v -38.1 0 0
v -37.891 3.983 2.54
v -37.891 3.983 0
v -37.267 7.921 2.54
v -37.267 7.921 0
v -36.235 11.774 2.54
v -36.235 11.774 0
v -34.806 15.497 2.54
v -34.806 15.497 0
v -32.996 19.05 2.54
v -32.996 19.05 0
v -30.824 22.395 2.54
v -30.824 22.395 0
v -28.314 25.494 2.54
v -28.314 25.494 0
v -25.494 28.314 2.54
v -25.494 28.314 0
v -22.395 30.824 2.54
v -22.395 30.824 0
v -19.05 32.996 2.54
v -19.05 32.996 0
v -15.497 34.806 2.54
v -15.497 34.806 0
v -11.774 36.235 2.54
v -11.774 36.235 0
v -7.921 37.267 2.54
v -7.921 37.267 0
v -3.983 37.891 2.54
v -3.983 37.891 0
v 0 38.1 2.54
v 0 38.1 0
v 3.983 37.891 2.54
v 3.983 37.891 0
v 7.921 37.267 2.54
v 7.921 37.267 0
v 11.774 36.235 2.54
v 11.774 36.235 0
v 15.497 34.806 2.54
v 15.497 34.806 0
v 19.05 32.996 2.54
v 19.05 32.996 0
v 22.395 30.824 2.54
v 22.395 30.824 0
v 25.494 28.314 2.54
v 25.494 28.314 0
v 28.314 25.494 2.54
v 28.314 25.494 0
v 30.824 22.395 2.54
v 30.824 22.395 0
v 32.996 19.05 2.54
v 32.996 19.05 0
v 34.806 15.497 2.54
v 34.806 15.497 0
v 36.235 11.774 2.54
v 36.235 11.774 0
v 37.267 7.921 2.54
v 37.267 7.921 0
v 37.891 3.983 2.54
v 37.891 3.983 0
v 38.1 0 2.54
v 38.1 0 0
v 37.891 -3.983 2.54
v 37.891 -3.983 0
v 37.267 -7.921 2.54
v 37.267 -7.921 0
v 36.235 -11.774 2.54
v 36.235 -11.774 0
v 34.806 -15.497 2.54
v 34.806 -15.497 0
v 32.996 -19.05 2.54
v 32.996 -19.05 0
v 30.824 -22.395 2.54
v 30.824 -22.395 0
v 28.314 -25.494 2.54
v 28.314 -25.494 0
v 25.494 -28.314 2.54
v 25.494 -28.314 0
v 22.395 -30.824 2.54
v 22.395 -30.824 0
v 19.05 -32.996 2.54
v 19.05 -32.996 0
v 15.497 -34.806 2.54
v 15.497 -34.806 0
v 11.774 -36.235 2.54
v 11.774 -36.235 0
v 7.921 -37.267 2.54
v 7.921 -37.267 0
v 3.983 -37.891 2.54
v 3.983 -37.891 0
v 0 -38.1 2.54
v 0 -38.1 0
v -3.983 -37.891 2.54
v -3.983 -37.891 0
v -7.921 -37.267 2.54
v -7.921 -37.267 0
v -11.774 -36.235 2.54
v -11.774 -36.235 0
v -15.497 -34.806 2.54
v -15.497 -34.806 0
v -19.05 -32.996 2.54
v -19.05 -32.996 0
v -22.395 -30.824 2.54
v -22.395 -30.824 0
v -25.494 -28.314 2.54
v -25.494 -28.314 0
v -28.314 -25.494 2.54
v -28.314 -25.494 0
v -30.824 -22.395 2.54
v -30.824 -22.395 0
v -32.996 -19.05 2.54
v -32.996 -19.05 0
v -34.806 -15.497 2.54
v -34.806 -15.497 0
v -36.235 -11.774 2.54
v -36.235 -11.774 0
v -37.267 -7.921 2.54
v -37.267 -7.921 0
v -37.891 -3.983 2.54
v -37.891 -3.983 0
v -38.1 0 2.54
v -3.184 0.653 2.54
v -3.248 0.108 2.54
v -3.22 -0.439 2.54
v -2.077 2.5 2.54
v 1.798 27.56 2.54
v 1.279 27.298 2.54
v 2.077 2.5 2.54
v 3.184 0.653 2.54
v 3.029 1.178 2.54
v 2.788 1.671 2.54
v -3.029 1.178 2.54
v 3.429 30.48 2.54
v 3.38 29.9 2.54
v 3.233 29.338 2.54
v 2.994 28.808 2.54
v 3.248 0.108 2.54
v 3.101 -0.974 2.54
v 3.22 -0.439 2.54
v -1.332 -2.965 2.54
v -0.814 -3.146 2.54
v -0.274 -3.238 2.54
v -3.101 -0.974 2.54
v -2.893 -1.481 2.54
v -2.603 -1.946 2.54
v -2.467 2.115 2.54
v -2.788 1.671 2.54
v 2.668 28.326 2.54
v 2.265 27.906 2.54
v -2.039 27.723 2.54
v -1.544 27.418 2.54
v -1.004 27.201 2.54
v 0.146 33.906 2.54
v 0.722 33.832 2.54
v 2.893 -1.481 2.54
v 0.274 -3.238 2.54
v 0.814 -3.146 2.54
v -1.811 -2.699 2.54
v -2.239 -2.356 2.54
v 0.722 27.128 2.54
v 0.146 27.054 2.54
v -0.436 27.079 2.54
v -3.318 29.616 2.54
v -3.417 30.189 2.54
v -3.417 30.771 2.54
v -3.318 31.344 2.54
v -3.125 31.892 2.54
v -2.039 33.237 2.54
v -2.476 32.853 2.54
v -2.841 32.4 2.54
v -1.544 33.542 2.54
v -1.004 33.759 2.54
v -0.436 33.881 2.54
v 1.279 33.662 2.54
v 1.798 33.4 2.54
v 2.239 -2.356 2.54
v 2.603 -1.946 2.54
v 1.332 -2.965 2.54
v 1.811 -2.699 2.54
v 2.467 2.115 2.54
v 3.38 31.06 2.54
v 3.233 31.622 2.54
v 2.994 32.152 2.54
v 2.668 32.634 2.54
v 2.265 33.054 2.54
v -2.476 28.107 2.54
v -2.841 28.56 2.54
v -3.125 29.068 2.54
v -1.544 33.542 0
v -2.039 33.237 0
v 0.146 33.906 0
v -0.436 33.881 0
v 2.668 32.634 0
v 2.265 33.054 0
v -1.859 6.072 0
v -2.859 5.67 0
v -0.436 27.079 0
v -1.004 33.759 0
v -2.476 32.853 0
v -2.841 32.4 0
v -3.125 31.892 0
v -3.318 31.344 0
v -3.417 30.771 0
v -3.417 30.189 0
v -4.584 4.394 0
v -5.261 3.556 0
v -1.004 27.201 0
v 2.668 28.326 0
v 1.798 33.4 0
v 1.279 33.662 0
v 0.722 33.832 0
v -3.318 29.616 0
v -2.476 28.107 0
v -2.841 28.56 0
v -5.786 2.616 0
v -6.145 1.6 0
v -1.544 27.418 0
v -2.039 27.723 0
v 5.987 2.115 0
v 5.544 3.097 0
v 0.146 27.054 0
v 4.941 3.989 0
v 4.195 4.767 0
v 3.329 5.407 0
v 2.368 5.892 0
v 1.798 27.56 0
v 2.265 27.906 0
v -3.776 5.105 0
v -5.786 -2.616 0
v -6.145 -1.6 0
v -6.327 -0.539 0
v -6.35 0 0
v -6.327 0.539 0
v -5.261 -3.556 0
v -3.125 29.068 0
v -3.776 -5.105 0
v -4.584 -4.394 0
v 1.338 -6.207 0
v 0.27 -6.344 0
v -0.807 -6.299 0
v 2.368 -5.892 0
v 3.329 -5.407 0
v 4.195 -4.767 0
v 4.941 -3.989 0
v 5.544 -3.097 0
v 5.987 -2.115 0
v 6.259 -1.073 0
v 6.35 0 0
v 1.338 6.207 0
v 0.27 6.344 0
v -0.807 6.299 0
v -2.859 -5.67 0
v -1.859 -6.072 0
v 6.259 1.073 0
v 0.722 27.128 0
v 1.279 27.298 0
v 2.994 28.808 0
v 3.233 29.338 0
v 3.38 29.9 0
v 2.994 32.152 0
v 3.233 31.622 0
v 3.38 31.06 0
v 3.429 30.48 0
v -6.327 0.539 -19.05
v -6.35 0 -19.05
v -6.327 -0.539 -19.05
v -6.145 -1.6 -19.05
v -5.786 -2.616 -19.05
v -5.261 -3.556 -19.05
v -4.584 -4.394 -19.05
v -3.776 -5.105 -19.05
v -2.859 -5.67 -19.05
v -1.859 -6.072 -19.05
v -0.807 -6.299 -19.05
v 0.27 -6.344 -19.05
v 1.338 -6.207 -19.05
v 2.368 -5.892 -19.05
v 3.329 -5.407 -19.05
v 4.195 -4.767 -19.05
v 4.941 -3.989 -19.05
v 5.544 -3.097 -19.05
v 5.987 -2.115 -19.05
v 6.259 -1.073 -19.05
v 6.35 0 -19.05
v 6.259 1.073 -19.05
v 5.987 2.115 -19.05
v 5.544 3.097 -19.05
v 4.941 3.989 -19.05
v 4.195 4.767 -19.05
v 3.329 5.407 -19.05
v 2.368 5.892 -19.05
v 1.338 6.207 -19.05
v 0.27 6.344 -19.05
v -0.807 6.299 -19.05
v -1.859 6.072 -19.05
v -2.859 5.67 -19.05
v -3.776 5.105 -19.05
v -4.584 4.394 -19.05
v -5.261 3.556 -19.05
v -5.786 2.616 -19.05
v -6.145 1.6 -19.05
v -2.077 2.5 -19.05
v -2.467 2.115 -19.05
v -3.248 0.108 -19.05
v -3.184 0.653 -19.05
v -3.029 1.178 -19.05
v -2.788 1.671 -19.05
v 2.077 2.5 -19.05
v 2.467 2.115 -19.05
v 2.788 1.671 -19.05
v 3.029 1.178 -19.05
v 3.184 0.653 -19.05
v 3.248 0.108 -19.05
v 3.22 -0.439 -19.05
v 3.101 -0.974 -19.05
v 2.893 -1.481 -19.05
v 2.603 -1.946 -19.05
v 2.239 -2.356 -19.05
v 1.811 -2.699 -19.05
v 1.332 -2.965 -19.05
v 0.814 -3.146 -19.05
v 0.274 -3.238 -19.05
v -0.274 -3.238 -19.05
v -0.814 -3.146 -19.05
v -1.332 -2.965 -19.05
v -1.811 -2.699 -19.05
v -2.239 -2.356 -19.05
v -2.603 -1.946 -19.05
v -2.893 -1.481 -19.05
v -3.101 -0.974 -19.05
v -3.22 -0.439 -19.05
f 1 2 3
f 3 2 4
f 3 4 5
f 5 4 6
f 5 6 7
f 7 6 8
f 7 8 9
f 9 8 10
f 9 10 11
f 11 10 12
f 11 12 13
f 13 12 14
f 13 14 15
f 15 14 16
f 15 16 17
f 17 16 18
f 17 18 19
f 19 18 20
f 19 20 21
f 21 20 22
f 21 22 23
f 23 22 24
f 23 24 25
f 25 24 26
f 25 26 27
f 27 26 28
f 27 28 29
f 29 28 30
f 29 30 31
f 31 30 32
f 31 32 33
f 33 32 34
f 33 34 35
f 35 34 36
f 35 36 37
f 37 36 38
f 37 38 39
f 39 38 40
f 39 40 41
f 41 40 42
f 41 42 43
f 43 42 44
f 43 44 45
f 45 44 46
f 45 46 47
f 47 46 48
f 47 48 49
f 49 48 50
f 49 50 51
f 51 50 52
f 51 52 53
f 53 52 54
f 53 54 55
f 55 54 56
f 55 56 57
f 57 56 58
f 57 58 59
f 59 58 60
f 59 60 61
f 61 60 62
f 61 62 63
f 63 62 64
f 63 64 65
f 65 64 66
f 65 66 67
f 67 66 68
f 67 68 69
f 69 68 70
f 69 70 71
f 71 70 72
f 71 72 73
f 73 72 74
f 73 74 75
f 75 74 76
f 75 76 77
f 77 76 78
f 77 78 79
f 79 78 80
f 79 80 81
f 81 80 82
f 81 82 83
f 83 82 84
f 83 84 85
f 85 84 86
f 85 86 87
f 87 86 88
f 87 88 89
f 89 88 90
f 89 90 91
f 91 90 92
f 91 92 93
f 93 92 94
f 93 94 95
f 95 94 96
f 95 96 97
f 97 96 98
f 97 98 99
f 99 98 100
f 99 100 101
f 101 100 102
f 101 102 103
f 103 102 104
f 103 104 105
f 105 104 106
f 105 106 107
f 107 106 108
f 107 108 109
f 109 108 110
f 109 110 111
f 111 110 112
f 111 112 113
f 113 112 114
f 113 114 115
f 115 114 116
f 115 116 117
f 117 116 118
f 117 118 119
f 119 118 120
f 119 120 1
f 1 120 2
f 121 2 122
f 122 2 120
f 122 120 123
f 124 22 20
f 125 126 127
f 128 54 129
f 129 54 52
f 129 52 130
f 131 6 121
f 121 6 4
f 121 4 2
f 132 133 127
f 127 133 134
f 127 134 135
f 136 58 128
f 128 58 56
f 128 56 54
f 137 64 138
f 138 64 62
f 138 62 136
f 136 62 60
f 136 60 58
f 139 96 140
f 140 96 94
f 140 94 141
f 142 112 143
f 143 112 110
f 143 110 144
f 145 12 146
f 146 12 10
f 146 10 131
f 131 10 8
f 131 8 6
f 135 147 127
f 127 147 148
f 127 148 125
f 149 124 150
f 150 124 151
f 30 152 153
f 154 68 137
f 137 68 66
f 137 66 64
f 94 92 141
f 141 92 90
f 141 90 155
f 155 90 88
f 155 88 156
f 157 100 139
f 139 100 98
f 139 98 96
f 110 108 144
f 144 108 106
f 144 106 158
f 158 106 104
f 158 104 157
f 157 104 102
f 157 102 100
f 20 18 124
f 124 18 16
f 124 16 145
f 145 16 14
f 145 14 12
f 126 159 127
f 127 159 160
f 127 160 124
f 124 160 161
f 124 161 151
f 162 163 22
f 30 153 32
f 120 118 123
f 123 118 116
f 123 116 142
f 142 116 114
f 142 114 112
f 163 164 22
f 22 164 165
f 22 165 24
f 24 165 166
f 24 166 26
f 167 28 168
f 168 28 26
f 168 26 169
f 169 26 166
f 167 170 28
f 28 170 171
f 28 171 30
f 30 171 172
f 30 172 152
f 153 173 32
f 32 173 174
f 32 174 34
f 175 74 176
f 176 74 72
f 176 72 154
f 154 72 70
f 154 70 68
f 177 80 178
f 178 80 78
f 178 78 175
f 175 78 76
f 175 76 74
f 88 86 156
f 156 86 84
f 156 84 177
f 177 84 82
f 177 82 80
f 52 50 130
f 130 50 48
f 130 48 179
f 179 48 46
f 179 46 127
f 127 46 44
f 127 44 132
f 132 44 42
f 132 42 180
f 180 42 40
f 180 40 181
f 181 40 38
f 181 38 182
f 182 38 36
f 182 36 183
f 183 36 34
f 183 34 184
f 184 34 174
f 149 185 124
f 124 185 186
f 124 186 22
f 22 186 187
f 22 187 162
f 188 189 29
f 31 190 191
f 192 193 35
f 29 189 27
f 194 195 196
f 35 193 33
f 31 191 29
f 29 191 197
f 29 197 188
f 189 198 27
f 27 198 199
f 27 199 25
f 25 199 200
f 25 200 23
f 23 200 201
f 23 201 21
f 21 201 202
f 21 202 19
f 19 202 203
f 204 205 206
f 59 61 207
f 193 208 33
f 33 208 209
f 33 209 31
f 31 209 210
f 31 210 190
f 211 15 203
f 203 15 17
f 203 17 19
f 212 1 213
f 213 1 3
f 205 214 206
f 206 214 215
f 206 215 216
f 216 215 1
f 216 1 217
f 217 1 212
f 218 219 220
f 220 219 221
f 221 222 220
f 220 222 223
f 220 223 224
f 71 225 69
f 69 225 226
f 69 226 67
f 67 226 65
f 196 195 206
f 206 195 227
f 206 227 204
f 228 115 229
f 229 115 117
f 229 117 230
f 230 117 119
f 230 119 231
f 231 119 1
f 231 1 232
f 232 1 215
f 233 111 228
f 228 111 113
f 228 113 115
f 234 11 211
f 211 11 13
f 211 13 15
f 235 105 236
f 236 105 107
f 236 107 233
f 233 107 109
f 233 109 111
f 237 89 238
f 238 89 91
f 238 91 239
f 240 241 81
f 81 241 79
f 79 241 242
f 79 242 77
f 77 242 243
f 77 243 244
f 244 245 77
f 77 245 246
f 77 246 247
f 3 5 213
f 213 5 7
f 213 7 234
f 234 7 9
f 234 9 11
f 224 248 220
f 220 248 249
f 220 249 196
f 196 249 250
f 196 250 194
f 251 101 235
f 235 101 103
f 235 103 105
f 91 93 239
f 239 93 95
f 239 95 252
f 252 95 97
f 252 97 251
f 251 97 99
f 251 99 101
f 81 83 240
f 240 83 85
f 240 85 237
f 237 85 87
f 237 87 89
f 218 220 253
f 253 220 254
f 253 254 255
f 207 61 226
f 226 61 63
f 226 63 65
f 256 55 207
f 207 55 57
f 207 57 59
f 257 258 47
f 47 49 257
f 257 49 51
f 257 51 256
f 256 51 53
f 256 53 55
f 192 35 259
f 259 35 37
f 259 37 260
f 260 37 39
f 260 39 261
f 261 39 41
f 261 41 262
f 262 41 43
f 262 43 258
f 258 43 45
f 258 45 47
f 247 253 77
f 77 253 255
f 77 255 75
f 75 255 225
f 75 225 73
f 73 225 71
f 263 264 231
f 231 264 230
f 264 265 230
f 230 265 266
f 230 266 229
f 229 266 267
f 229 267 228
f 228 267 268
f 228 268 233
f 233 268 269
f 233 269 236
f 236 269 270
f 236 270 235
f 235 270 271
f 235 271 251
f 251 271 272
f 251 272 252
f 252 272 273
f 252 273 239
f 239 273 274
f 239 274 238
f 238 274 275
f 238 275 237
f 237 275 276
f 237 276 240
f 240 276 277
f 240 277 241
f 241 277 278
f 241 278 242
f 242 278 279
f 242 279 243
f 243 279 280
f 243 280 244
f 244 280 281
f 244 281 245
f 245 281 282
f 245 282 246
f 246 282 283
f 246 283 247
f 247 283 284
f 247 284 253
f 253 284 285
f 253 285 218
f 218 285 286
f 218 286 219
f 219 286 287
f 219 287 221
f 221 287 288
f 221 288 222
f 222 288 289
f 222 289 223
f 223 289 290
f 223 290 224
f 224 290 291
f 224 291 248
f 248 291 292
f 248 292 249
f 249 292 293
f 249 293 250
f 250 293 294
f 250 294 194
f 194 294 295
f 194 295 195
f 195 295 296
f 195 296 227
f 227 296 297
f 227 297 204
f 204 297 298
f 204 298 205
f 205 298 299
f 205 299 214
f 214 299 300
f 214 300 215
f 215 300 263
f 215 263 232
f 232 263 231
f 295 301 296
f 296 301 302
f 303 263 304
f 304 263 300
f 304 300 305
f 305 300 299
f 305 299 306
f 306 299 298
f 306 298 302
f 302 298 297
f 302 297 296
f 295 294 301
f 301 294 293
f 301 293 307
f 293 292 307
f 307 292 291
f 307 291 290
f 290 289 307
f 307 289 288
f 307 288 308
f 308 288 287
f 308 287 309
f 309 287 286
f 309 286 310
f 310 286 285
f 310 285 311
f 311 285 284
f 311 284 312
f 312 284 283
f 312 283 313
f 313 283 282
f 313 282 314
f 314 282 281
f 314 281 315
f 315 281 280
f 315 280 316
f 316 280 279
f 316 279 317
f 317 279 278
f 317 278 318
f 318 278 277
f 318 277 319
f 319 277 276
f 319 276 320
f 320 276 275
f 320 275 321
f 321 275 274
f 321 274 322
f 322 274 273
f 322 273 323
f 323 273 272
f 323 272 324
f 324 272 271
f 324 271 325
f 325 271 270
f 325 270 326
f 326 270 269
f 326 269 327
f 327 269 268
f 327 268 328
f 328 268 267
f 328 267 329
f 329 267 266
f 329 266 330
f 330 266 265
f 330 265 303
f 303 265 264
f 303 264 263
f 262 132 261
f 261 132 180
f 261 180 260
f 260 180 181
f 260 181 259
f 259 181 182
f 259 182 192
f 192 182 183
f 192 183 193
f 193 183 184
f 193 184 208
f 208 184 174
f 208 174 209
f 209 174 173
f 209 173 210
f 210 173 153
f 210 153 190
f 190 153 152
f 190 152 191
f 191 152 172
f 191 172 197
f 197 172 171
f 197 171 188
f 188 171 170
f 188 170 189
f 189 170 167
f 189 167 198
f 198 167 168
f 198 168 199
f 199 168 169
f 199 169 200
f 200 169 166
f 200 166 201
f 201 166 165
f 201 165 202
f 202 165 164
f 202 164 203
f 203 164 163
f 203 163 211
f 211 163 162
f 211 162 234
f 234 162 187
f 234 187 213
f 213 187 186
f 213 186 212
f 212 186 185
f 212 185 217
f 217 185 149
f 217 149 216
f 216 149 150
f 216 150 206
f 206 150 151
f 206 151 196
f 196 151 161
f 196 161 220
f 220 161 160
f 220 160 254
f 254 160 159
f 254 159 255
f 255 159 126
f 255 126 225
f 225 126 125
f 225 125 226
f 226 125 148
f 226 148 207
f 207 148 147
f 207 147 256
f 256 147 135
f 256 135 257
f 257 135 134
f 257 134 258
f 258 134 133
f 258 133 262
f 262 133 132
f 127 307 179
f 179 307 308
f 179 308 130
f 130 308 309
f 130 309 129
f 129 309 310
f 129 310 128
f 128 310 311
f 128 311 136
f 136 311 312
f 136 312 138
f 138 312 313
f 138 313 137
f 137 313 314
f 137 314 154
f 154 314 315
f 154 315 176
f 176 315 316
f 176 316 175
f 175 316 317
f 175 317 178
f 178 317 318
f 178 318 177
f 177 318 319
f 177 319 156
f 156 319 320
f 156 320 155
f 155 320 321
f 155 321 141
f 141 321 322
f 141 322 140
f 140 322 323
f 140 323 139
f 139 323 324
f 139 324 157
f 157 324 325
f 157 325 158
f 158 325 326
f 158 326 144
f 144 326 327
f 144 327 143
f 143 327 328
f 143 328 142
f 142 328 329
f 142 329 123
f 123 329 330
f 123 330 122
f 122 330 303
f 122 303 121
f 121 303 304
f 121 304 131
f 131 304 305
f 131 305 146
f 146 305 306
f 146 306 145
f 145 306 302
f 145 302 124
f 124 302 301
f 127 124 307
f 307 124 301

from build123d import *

# Parameters (mm, degrees)
SKETCH1_R           = 38.1
BOSS_EXTRUDE1_DEPTH = 2.54
SKETCH3_R           = 6.35
BOSS_EXTRUDE3_DEPTH = 19.05
SKETCH2_R           = 3.429
CUT_EXTRUDE1_DEPTH  = 59.046086001
CUT_EXTRUDE2_DEPTH  = 59.046086001


with BuildPart() as part:
    # Sketch1 → Boss-Extrude1 (new body)
    with BuildSketch(Plane.XY):
        Circle(SKETCH1_R)
    extrude(amount=BOSS_EXTRUDE1_DEPTH)

    # Sketch3 → Boss-Extrude3 (add)
    with BuildSketch(Plane(origin=(0, 0, 0), x_dir=(-1, 0, 0), z_dir=(0, 0, -1))):
        with Locations(Location((0, 0, 0), (0, 0, 180))):
            Circle(SKETCH3_R)
    extrude(amount=BOSS_EXTRUDE3_DEPTH)

    # Sketch2 → Cut-Extrude1 (cut, through all)
    with BuildSketch(Plane.XY.offset(2.54)):
        with Locations((0, 30.48)):
            Circle(SKETCH2_R)
    extrude(amount=-CUT_EXTRUDE1_DEPTH, mode=Mode.SUBTRACT)

    # Sketch4 → Cut-Extrude2 (cut, through all)
    with BuildSketch(Plane(origin=(0, 0, -19.05), x_dir=(-1, 0, 0), z_dir=(0, 0, -1))):
        with BuildLine():
            Line((-2.076655966, 2.5), (2.076655966, 2.5))
            ThreePointArc((2.076655966, 2.5), (0, -3.25), (-2.076655966, 2.5))
        make_face()
    extrude(amount=-CUT_EXTRUDE2_DEPTH, mode=Mode.SUBTRACT)


solid = part.part
